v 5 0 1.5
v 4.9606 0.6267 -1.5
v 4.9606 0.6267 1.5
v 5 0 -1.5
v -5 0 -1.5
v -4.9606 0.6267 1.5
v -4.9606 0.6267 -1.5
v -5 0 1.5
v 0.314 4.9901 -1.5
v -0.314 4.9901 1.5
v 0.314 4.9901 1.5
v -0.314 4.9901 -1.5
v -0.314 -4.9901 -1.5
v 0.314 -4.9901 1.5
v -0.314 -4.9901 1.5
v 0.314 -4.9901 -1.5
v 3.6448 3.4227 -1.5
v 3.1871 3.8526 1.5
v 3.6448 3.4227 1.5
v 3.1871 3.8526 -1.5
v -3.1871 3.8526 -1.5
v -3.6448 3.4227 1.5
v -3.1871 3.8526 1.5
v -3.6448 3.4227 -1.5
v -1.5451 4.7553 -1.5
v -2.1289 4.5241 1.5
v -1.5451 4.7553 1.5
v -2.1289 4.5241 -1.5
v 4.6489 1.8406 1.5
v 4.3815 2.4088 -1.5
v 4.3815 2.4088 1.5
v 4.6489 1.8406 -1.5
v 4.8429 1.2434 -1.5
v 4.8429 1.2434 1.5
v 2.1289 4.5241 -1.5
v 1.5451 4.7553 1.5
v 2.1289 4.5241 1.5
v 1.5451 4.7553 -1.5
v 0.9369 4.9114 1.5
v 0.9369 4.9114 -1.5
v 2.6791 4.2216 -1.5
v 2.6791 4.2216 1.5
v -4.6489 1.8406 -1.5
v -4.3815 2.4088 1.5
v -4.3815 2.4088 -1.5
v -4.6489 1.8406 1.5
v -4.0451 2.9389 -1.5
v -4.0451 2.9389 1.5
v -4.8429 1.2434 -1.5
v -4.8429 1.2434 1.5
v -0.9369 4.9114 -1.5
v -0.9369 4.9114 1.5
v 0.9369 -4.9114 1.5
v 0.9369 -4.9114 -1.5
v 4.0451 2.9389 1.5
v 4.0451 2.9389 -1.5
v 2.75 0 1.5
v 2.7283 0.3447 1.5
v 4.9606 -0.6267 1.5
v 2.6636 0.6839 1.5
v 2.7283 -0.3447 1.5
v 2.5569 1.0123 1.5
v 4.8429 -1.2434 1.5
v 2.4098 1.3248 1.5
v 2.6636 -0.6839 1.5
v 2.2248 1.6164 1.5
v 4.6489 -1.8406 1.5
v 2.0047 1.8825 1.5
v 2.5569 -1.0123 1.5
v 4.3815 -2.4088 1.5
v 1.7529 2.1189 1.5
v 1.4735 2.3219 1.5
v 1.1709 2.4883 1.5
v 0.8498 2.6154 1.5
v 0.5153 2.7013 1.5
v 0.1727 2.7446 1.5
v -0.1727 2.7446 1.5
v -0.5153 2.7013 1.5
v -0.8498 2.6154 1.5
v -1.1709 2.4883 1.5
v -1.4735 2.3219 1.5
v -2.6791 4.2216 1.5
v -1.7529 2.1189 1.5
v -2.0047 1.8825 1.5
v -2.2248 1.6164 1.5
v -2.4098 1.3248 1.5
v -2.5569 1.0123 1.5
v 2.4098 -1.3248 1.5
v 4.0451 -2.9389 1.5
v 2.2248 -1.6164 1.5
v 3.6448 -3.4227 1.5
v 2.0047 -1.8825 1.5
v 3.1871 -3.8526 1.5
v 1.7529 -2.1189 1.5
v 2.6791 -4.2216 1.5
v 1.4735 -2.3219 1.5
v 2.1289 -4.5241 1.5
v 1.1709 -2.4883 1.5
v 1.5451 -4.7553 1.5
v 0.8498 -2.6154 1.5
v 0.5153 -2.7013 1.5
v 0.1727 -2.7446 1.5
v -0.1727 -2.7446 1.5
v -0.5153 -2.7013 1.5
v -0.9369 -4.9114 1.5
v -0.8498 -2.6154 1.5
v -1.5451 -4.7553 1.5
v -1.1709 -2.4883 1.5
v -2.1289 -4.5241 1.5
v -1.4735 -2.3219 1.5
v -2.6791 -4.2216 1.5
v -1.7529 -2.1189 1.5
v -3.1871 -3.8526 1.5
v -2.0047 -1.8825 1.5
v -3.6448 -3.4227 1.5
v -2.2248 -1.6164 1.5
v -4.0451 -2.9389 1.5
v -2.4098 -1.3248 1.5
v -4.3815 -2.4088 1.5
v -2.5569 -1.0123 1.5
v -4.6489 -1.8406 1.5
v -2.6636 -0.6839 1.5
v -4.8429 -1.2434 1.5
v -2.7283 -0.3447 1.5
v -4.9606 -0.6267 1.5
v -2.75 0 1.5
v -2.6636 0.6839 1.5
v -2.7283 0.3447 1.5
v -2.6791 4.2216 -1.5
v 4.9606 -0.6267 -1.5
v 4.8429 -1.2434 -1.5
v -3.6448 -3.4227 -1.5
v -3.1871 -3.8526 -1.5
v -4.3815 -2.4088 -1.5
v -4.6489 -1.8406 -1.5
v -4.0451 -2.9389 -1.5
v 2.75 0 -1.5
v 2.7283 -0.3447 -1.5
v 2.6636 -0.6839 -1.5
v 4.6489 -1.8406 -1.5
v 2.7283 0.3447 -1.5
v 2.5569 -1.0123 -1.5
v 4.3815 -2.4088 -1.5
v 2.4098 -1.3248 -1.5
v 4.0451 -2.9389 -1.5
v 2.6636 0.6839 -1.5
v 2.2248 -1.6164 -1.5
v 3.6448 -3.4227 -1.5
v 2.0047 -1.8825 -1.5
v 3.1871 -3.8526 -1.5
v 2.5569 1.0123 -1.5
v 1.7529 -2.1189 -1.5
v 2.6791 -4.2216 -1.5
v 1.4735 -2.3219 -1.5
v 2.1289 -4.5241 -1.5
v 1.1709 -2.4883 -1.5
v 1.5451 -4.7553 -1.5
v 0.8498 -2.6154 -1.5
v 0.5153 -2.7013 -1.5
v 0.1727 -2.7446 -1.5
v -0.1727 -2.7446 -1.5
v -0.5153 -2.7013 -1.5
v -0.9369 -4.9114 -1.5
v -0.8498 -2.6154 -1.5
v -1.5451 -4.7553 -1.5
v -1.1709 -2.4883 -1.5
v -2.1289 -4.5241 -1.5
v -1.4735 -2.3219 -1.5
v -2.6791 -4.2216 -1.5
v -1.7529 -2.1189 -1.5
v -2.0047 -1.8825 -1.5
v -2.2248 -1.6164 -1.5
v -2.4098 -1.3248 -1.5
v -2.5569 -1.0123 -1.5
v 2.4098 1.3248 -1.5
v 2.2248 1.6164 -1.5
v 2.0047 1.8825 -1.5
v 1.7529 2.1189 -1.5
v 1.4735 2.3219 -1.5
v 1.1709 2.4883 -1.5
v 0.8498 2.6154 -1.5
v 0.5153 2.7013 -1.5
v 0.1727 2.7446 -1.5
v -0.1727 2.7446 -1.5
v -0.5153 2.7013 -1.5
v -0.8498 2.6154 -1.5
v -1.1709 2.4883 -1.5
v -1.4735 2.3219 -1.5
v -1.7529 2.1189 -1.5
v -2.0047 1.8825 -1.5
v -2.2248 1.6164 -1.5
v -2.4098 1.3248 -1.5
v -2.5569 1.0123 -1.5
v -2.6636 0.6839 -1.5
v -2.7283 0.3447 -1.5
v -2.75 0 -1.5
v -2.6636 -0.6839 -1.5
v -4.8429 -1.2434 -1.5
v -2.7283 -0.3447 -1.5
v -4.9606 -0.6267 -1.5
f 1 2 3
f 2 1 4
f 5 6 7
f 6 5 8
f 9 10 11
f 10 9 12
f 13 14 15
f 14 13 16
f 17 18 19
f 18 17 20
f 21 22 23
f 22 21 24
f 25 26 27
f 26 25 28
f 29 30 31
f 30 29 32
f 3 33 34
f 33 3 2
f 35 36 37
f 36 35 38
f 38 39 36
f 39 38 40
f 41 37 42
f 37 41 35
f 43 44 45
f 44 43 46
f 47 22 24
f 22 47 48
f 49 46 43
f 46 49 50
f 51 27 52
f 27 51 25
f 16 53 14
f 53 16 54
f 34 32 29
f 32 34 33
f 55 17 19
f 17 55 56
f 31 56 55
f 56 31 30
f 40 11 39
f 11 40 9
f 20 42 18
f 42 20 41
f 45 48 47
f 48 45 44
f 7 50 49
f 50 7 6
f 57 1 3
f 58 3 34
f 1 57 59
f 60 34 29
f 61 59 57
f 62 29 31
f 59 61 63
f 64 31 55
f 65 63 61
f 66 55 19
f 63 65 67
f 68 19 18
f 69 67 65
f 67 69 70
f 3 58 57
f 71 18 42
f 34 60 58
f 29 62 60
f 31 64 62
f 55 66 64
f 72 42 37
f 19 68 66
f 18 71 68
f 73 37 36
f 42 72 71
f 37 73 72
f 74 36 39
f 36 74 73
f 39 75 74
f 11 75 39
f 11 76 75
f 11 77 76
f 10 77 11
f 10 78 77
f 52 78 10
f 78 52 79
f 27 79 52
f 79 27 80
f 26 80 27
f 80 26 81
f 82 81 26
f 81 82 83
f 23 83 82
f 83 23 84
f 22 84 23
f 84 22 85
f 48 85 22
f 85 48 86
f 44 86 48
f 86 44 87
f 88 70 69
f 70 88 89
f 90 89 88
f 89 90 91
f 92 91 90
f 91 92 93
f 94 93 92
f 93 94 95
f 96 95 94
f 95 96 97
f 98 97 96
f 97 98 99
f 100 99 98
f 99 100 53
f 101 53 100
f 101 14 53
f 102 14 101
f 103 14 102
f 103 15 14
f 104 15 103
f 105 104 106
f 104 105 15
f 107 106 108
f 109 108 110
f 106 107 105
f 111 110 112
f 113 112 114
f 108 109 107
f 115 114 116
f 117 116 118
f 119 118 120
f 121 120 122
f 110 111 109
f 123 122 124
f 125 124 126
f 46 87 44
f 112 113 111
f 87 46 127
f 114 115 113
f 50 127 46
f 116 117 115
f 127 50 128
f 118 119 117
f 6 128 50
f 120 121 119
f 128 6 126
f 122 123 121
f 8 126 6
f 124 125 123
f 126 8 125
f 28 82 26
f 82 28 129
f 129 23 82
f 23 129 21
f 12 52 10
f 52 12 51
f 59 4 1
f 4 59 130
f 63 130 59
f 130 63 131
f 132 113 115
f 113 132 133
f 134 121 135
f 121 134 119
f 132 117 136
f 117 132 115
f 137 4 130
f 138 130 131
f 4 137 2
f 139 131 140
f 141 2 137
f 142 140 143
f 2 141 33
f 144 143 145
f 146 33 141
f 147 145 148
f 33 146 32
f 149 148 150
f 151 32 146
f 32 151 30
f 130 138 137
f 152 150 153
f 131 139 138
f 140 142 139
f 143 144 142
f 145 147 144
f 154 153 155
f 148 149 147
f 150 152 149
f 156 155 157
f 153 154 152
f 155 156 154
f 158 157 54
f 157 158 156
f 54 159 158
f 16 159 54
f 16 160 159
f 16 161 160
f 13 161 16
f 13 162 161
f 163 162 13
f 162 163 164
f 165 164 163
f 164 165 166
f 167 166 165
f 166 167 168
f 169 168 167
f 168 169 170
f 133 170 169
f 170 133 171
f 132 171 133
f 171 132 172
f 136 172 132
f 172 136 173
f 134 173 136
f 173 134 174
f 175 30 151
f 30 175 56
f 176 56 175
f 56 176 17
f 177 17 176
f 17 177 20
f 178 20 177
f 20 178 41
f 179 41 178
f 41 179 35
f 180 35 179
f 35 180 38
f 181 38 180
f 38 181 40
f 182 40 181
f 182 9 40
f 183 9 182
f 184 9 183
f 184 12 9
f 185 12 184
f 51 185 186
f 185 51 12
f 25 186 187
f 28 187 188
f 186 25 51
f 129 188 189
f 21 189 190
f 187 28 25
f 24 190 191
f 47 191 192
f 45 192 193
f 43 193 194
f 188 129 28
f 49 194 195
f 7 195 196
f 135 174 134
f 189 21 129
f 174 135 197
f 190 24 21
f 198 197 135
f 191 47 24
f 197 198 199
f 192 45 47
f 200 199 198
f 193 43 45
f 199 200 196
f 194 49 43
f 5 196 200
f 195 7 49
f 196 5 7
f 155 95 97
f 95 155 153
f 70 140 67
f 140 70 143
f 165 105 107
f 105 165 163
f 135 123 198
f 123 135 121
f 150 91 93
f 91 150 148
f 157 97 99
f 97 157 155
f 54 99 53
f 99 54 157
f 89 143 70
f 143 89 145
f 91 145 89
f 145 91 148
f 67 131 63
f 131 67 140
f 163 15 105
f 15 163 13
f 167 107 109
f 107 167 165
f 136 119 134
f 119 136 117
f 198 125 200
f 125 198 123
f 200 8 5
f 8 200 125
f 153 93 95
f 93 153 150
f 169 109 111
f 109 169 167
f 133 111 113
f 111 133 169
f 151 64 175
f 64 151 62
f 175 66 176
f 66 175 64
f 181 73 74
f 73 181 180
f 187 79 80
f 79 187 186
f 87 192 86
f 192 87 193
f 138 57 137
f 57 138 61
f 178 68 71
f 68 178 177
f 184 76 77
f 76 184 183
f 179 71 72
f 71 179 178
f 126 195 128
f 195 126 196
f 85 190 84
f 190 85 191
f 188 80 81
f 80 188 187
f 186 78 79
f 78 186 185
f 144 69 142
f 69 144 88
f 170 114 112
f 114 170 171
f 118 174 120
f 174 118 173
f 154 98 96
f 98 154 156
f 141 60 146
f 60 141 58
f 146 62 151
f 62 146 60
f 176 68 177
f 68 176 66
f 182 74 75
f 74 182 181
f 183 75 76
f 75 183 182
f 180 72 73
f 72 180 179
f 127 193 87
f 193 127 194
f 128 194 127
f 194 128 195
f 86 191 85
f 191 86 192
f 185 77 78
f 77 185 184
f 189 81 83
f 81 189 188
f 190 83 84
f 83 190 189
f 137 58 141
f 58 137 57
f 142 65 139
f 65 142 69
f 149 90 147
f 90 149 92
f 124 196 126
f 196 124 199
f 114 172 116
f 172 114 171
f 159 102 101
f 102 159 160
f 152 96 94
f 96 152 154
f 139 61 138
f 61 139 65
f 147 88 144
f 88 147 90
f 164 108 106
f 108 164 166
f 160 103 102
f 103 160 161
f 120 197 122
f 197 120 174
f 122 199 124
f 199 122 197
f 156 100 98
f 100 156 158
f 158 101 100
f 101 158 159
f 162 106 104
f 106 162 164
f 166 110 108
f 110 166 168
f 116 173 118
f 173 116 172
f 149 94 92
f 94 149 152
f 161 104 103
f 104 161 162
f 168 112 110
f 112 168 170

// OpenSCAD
$fn = 50;


difference() {
	union() {
		translate(v = [0, 0, -1.5000000000]) {
			cylinder(h = 3, r = 5.0000000000);
		}
	}
	union() {
		translate(v = [0, 0, -100.0000000000]) {
			cylinder(h = 200, r = 2.7500000000);
		}
	}
}
